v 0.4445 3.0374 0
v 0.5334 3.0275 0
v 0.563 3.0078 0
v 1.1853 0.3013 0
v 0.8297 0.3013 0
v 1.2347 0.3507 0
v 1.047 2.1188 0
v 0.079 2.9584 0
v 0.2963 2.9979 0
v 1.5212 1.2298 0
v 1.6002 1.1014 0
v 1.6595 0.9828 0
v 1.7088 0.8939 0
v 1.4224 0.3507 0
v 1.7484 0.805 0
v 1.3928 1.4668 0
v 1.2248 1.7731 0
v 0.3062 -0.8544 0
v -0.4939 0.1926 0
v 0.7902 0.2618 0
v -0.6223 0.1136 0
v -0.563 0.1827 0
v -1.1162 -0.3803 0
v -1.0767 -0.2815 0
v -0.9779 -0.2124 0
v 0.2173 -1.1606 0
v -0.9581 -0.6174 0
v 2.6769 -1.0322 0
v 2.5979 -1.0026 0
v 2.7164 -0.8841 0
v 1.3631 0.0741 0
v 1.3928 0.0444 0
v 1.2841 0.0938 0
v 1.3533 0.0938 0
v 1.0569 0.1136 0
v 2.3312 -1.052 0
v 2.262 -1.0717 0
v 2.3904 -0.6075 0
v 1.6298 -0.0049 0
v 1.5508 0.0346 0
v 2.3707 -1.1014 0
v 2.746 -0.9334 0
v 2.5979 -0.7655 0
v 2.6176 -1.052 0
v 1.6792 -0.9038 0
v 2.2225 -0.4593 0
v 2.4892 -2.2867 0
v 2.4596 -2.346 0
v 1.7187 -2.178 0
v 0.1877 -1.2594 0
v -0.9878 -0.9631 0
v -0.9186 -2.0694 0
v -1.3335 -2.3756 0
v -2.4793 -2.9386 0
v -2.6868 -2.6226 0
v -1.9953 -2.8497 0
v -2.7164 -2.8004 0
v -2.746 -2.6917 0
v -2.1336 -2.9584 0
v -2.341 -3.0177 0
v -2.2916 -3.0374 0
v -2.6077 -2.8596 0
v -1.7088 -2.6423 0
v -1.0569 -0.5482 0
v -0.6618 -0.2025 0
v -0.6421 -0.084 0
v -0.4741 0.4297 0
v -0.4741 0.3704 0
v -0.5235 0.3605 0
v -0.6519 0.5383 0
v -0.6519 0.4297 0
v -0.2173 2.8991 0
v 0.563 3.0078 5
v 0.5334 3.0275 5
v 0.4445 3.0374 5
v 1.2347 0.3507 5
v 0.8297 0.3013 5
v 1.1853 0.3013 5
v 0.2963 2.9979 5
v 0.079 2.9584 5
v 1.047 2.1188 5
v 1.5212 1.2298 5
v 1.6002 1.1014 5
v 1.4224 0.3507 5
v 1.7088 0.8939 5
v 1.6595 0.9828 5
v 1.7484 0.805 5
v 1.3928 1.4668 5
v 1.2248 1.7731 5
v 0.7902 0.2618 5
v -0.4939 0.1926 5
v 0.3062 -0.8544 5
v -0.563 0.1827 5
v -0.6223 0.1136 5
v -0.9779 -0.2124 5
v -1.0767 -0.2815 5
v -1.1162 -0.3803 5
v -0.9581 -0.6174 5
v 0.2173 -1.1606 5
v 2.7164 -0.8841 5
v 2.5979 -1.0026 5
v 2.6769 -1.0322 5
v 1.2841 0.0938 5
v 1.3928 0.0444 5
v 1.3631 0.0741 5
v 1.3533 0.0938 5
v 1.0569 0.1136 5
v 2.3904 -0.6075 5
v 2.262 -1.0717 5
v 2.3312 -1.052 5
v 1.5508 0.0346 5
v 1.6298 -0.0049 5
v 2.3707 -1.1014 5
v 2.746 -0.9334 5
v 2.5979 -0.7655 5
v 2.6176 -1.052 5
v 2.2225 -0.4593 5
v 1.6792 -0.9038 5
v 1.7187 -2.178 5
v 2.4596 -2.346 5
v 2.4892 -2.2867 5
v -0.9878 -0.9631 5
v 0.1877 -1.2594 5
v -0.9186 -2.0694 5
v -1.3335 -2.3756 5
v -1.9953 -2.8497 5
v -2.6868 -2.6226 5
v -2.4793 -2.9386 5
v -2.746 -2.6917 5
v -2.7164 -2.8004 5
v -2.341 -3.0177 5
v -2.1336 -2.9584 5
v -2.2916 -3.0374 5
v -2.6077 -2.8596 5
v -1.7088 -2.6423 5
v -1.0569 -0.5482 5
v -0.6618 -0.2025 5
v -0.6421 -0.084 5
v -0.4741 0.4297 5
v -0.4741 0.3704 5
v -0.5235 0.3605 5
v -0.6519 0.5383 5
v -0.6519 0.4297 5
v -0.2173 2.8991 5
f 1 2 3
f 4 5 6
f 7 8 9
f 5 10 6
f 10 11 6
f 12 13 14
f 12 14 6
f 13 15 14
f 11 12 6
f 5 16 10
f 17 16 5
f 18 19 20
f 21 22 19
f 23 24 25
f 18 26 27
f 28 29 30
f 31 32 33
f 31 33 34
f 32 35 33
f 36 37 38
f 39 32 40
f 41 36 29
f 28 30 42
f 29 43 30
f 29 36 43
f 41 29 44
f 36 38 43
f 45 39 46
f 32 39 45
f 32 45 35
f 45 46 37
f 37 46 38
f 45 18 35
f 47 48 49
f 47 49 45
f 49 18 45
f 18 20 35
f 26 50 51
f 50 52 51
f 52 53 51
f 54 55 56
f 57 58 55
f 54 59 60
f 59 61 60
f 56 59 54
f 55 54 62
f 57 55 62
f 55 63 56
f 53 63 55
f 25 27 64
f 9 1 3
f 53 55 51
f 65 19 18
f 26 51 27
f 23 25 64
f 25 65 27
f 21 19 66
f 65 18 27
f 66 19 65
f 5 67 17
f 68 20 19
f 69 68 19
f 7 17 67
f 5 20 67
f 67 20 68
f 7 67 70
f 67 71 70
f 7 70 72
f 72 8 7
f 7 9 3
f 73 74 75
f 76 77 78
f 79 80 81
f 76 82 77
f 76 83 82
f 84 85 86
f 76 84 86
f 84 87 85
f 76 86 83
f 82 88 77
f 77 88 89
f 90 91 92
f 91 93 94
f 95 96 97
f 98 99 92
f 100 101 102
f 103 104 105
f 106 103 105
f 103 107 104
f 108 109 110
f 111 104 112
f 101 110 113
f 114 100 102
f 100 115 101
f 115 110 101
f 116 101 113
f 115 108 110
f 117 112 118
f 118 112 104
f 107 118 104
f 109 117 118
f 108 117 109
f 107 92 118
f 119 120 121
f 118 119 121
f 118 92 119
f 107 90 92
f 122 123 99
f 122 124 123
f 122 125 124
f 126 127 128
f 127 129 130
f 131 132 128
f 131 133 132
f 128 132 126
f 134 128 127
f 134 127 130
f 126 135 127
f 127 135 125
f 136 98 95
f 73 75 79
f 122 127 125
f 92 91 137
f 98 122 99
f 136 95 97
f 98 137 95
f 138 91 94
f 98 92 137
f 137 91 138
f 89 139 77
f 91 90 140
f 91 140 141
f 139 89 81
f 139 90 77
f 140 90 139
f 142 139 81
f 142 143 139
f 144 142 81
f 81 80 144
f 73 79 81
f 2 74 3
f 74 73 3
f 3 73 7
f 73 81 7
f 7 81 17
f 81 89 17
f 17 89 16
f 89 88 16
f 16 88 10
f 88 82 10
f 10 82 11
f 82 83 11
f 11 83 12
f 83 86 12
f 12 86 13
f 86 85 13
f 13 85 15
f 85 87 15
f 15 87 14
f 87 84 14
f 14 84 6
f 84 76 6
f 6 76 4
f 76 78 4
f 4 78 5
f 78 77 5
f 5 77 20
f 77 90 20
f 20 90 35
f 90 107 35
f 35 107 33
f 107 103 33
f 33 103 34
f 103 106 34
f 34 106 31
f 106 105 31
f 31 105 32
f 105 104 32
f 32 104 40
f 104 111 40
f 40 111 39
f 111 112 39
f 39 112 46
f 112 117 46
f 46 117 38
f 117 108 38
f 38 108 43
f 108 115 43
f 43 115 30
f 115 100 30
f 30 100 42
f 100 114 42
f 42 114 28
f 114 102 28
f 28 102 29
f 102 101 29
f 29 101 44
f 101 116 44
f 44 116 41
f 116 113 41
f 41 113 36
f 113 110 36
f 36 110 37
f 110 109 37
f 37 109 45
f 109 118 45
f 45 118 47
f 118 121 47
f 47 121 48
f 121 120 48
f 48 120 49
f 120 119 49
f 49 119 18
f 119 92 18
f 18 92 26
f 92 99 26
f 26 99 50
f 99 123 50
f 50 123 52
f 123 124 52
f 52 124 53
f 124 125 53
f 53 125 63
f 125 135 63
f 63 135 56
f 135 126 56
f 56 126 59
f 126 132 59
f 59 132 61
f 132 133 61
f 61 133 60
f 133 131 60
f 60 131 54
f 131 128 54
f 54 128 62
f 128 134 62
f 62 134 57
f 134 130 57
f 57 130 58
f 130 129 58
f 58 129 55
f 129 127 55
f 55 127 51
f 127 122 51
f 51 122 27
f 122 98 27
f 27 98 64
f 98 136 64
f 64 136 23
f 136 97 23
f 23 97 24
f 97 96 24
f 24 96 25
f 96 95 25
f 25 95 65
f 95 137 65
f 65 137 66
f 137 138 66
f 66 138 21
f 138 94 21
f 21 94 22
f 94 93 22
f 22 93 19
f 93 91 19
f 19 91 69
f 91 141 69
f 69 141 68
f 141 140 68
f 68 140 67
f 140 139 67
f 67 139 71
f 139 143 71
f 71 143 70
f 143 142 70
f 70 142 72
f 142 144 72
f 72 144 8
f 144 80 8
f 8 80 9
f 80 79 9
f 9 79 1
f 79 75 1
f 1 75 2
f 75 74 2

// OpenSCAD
// Module names are of the form poly_<inkscape-path-id>().  As a result,
// you can associate a polygon in this OpenSCAD program with the corresponding
// SVG element in the Inkscape document by looking for the XML element with
// the attribute id="inkscape-path-id".

// fudge value is used to ensure that subtracted solids are a tad taller
// in the z dimension than the polygon being subtracted from.  This helps
// keep the resulting .stl file manifold.
fudge = 0.1;

module poly_path4264(h)
{
  scale([25.4/90, -25.4/90, 1]) union()
  {
    linear_extrude(height=h)
      polygon([[9.485000,3.657500],[9.205000,3.552500],[9.275000,3.727500],[8.400000,3.902500],[8.260000,3.727500],[8.015000,3.797500],[5.950000,3.202500],[8.820000,8.102500],[8.715000,8.312500],[6.090000,7.717500],[1.085000,3.027500],[0.770000,4.112500],[0.665000,4.462500],[-3.255000,7.332500],[-4.725000,8.417500],[-6.055000,9.362500],[-7.070000,10.097500],[-7.560000,10.482500],[-8.120000,10.762500],[-8.295000,10.692500],[-8.785000,10.412500],[-9.240000,10.132500],[-9.625000,9.922500],[-9.730000,9.537500],[-9.520000,9.292500],[-3.500000,3.412500],[-3.395000,2.187500],[-3.745000,1.942500],[-3.955000,1.347500],[-3.815000,0.997500],[-3.465000,0.752500],[-2.345000,0.717500],[-2.275000,0.297500],[-2.240000,-0.052500],[-2.205000,-0.402500],[-1.995000,-0.647500],[-1.750000,-0.682500],[-1.855000,-1.277500],[-1.680000,-1.312500],[-1.680000,-1.522500],[-2.310000,-1.522500],[-2.310000,-1.907500],[-0.770000,-10.272500],[0.280000,-10.482500],[1.050000,-10.622500],[1.575000,-10.762500],[1.890000,-10.727500],[1.995000,-10.657500],[3.710000,-7.507500],[4.340000,-6.282500],[4.935000,-5.197500],[5.390000,-4.357500],[5.670000,-3.902500],[5.880000,-3.482500],[6.055000,-3.167500],[6.195000,-2.852500],[5.040000,-1.242500],[4.375000,-1.242500],[4.200000,-1.067500],[2.940000,-1.067500],[2.800000,-0.927500],[3.745000,-0.402500],[4.550000,-0.332500],[4.795000,-0.332500],[4.830000,-0.262500],[4.935000,-0.157500],[5.495000,-0.122500],[5.775000,0.017500],[6.370000,0.472500],[7.875000,1.627500],[8.470000,2.152500],[9.205000,2.712500],[9.625000,3.132500],[9.730000,3.307500],[9.485000,3.657500]]);
  }
}

poly_path4264(5);
